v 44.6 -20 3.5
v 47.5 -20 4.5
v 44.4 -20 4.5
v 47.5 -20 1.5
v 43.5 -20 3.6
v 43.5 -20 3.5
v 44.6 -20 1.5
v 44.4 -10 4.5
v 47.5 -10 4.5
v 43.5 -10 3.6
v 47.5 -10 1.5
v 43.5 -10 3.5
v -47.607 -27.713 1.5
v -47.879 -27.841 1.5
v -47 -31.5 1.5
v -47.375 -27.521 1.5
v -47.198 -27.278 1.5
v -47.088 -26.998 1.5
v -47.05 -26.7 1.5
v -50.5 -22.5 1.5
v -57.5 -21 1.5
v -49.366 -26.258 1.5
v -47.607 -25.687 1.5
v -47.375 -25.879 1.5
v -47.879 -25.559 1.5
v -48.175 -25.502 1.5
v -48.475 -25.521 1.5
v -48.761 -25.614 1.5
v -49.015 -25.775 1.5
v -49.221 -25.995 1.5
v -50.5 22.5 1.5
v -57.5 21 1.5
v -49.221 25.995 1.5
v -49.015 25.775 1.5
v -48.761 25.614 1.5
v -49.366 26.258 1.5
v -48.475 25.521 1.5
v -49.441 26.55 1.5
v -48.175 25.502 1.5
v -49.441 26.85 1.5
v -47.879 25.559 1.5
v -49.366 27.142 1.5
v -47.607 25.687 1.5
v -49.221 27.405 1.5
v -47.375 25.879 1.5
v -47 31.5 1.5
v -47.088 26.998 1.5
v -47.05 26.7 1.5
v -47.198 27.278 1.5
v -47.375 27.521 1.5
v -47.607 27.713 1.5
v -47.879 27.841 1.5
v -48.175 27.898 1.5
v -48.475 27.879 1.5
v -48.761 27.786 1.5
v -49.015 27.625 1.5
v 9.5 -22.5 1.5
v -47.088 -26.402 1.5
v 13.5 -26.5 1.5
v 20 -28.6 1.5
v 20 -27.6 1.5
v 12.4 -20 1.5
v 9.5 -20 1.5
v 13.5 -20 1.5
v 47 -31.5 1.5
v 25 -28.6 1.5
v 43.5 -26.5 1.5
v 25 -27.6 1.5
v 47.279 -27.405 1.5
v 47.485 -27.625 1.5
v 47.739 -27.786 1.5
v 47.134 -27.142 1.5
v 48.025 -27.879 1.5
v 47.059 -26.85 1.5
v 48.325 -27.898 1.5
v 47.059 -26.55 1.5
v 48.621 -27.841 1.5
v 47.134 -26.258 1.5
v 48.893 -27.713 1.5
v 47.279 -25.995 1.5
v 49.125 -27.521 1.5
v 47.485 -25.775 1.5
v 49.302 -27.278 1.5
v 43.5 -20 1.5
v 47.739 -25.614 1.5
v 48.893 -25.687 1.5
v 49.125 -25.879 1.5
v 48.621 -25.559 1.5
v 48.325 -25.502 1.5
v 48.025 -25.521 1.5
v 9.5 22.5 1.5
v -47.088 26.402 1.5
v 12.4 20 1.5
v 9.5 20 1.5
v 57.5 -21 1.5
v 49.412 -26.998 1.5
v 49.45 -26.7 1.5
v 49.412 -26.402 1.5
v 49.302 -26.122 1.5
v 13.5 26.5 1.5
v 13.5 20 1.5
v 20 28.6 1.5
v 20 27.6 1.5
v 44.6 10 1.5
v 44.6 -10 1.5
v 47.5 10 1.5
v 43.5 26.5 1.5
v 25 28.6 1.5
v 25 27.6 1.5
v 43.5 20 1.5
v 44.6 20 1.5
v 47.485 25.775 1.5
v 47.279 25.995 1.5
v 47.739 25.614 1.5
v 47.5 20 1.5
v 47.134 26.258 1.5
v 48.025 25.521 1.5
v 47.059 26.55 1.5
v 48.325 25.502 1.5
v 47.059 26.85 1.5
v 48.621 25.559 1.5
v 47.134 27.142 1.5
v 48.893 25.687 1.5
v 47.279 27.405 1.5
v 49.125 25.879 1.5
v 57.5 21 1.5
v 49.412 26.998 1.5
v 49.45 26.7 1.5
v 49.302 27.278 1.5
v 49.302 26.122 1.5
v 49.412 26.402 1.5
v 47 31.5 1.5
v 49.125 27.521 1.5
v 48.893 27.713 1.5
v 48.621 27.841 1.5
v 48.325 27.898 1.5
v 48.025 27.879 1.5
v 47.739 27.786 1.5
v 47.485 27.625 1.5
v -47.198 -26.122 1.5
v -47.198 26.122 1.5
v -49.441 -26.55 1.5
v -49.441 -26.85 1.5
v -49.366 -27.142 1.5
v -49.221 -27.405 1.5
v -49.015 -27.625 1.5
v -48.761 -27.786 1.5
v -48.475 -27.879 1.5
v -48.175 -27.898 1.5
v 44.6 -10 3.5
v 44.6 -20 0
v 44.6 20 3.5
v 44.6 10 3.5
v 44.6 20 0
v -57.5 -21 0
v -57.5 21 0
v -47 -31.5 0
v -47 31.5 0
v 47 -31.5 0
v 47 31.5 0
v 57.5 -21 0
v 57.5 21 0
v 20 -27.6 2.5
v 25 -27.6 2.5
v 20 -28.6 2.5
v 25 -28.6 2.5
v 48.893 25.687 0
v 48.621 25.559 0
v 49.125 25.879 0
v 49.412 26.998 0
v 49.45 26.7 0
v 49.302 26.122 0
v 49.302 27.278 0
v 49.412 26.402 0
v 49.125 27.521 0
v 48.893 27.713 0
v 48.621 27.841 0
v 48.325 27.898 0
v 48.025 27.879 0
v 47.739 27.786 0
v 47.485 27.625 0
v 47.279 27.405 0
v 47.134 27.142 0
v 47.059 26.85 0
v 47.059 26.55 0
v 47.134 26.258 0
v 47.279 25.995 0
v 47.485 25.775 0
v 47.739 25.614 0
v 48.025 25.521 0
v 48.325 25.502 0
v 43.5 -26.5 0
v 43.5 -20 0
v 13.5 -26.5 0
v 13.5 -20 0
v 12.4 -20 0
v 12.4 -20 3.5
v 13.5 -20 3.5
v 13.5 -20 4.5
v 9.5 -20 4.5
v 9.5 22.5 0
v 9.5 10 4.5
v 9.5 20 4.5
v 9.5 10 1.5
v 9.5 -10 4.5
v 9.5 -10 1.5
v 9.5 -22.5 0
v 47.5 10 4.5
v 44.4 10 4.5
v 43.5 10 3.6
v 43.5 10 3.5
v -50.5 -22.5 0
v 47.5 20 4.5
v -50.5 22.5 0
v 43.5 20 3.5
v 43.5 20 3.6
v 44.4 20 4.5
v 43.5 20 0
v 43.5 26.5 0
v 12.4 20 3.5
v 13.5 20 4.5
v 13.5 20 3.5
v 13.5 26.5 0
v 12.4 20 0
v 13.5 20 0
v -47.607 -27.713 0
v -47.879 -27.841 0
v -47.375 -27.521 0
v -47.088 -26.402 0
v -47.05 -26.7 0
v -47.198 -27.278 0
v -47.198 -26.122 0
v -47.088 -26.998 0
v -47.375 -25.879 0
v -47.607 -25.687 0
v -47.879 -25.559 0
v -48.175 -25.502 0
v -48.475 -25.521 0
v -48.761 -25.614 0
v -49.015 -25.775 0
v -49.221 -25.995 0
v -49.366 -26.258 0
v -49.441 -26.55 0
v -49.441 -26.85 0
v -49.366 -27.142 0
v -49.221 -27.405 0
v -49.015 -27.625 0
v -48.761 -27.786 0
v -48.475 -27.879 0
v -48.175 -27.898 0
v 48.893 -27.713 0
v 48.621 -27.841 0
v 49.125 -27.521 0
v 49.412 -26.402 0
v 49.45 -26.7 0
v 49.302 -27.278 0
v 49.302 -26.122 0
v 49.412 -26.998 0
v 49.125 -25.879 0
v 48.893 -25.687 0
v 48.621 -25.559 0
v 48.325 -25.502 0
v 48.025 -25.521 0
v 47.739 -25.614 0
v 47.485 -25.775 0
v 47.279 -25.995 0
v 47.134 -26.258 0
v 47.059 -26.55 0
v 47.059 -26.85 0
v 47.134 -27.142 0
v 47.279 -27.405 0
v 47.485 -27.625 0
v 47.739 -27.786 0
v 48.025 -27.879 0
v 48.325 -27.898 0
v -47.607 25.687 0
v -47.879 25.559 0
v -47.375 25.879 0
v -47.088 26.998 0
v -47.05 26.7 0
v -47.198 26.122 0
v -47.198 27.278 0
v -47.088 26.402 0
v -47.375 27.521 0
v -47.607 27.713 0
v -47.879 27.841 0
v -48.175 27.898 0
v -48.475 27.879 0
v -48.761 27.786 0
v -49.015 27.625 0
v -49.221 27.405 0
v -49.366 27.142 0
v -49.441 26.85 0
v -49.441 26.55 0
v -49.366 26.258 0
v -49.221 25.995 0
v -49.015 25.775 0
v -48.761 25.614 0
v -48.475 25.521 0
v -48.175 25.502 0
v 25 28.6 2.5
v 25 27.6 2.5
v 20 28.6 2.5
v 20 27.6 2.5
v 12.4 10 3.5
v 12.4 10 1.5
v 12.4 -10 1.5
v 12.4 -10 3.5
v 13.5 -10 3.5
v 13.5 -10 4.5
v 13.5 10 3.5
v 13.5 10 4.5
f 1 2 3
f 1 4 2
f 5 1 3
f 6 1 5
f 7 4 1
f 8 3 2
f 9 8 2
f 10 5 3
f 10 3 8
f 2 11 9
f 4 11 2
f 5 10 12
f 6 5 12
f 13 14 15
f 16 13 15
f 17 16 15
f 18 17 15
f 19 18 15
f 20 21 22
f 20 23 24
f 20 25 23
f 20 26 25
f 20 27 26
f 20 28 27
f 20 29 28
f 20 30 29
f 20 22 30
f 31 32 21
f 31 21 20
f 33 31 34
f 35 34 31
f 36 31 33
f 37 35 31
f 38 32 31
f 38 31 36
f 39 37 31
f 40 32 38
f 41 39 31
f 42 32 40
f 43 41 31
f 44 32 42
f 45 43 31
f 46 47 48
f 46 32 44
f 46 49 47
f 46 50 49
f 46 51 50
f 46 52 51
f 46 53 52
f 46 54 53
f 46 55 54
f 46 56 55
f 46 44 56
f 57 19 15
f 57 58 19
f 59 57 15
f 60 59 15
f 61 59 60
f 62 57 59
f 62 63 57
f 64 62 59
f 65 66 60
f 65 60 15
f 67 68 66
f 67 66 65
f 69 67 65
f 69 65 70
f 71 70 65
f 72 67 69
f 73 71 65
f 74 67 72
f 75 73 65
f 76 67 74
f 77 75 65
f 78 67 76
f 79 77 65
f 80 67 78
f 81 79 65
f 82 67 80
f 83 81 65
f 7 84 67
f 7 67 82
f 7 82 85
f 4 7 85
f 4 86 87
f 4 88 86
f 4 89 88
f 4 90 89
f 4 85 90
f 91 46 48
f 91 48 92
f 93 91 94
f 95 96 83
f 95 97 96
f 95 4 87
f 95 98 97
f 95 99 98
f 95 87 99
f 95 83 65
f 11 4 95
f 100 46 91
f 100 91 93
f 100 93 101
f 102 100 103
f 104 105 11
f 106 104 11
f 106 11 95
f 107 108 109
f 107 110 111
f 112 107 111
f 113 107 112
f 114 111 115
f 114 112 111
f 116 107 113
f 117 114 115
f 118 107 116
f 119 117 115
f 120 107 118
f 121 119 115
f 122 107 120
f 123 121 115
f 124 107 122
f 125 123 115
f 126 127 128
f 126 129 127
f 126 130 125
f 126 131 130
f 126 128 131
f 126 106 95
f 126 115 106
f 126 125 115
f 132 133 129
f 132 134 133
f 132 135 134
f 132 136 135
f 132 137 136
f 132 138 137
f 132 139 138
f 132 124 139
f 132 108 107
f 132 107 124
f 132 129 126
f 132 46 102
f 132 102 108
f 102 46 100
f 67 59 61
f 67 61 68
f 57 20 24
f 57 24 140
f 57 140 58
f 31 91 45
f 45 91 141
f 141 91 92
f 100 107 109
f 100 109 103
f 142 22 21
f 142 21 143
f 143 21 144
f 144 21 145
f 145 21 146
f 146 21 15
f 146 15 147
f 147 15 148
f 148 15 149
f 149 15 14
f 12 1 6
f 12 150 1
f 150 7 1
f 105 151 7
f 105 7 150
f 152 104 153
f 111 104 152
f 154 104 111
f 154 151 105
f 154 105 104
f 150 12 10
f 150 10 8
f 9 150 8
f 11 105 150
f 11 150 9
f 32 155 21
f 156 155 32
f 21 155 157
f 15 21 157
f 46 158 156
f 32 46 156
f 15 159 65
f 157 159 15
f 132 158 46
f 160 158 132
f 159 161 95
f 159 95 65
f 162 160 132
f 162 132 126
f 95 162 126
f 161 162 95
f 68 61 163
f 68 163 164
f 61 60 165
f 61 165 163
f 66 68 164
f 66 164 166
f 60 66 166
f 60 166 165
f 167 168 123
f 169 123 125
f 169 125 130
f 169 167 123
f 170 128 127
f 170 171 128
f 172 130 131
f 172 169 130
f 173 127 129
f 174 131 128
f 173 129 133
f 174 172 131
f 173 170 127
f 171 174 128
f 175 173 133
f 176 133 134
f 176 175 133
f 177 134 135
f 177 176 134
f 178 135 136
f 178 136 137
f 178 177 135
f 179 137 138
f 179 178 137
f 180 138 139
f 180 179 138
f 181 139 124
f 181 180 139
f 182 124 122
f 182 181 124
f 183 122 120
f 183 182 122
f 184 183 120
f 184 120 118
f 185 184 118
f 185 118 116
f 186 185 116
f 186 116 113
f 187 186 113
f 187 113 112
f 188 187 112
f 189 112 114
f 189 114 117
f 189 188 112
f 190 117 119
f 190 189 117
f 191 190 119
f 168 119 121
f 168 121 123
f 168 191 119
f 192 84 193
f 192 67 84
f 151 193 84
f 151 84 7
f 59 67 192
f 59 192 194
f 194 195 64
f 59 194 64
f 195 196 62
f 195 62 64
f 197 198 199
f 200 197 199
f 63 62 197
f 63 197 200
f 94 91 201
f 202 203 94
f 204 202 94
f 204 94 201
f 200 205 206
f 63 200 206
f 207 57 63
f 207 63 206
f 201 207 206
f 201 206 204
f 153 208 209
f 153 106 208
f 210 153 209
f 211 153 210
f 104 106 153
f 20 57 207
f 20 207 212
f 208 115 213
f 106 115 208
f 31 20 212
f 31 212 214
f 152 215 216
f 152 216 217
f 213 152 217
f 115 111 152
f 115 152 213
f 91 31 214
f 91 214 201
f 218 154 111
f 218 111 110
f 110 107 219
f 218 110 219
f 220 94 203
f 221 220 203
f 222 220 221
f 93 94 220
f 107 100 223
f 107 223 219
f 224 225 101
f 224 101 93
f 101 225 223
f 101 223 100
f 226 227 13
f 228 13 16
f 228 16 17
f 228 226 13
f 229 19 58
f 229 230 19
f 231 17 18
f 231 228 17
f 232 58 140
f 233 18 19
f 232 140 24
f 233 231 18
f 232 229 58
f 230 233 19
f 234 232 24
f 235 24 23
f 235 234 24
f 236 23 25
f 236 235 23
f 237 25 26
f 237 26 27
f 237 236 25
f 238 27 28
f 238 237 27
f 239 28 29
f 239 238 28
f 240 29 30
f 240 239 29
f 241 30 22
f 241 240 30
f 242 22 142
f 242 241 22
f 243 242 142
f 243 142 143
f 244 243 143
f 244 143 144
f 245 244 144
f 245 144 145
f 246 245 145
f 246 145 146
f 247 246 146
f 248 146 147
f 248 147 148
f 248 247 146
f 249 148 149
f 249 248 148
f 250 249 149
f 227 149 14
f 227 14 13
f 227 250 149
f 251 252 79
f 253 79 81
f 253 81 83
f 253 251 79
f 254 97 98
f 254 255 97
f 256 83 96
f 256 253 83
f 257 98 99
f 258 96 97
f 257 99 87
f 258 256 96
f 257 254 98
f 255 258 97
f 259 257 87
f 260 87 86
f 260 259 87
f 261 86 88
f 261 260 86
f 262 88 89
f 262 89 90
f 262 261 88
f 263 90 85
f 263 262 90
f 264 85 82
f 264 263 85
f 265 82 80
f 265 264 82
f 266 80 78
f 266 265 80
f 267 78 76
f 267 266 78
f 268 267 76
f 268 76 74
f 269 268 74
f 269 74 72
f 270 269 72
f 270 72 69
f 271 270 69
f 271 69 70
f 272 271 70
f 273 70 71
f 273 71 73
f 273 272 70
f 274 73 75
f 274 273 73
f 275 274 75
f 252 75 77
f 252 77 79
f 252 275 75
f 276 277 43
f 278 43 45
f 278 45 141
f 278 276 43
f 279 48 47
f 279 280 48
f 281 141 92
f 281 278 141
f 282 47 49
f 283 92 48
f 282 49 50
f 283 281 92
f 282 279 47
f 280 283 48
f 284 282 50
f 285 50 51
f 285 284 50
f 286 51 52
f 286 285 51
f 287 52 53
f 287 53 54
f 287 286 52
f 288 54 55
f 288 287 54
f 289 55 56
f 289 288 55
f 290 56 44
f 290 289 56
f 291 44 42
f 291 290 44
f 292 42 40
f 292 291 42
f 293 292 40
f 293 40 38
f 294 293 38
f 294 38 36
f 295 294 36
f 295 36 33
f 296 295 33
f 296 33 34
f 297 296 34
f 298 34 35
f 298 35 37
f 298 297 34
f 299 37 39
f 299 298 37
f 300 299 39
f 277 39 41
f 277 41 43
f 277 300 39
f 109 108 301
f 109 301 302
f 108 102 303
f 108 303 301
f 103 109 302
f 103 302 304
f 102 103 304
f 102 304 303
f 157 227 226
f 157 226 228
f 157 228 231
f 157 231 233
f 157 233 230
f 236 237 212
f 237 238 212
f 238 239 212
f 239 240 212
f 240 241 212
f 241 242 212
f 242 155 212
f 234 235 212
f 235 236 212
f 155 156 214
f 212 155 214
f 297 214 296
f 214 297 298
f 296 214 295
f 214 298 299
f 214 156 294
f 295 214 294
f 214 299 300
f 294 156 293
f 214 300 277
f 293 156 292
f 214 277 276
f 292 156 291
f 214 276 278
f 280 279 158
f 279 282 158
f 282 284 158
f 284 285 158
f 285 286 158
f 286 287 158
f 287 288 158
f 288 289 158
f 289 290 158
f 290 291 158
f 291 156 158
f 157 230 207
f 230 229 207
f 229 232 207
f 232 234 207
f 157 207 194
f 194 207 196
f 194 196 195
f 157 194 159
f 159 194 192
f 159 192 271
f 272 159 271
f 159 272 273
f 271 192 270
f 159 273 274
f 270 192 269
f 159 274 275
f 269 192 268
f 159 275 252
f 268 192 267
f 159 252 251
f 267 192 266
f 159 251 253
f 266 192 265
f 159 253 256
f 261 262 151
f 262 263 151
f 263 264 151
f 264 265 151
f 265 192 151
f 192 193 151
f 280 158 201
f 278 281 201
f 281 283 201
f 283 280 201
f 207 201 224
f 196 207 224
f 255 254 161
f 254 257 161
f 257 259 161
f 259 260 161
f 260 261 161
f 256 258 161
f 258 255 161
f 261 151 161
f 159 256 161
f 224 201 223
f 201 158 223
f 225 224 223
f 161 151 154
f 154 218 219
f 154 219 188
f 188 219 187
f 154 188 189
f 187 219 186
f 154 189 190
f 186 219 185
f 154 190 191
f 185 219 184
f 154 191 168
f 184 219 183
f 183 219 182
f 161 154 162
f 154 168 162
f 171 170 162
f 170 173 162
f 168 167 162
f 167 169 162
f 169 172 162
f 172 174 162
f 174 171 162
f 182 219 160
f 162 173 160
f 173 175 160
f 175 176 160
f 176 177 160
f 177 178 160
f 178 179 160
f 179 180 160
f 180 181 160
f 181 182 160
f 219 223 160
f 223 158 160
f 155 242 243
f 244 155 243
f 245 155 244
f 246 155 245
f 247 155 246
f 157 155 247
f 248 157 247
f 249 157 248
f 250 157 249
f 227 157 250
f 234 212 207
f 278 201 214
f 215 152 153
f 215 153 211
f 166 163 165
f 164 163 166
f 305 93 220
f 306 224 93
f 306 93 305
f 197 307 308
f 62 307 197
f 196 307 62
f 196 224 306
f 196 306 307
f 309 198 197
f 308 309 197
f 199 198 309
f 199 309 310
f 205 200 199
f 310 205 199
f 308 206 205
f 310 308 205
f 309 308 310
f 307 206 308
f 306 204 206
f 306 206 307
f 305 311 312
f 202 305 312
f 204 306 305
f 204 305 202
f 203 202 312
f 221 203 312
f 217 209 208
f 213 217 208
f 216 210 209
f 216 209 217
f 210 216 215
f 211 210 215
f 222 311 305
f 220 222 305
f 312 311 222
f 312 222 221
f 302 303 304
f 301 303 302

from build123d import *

# Parameters (mm, degrees)
SKETCH_R        = 1.2
PAD_DEPTH       = 1.5
SKETCH001_W     = 60
SKETCH001_H     = 45
SKETCH001_W_2   = 30
SKETCH001_H_2   = 53
POCKET_DEPTH    = 5
SKETCH002_W     = 4
SKETCH002_H     = 10
PAD001_DEPTH    = 3
SKETCH003_W     = 32.2
SKETCH003_H     = 40
POCKET001_DEPTH = 3.5
SKETCH004_W     = 5
SKETCH004_H     = 1
PAD002_DEPTH    = 1
CHAMFER_SIZE    = 0.9


with BuildPart() as pad:
    # Sketch → Pad (new body)
    with BuildSketch(Plane.XY):
        Polygon((-47, 31.5), (47, 31.5), (57.5, 21), (57.5, -21), (47, -31.5), (-47, -31.5), (-57.5, -21), (-57.5, 21), align=None)
        with Locations((-48.25, 26.7)):
            Circle(SKETCH_R, mode=Mode.SUBTRACT)
        with Locations((48.25, 26.7)):
            Circle(SKETCH_R, mode=Mode.SUBTRACT)
        with Locations((-48.25, -26.7)):
            Circle(SKETCH_R, mode=Mode.SUBTRACT)
        with Locations((48.25, -26.7)):
            Circle(SKETCH_R, mode=Mode.SUBTRACT)
    extrude(amount=PAD_DEPTH)


with BuildPart() as pocket:
    # Pocket base: copy of Pad
    add(pad.part)

    # Sketch001 → Pocket (cut)
    with BuildSketch(Plane.XY.offset(1.5)):
        with Locations((-20.5, 0)):
            Rectangle(SKETCH001_W, SKETCH001_H)
        with Locations((28.5, 0)):
            Rectangle(SKETCH001_W_2, SKETCH001_H_2)
    extrude(amount=-POCKET_DEPTH, mode=Mode.SUBTRACT)


with BuildPart() as common:
    # Common base: copy of Pad
    add(pad.part)

    # Common: intersect Pocket
    add(pocket.part, mode=Mode.INTERSECT)


with BuildPart() as fusion:
    # Pad001 base: copy of Common
    add(common.part)

    # Sketch002 → Pad001 (new body)
    with BuildSketch(Plane.XY.offset(1.5)):
        with Locations((11.5, 15)):
            Rectangle(SKETCH002_W, SKETCH002_H)
        with Locations((11.5, -15)):
            Rectangle(SKETCH002_W, SKETCH002_H)
        with Locations((45.5, 15)):
            Rectangle(SKETCH002_W, SKETCH002_H)
        with Locations((45.5, -15)):
            Rectangle(SKETCH002_W, SKETCH002_H)
    extrude(amount=PAD001_DEPTH)

    # Fusion: union Common
    add(common.part)


with BuildPart() as pocket001:
    # Pocket001 base: copy of Fusion
    add(fusion.part)

    # Sketch003 → Pocket001 (cut)
    with BuildSketch(Plane(origin=(0, 0, 0), x_dir=(1, 0, 0), z_dir=(0, 0, -1))):
        with Locations((28.5, 0)):
            Rectangle(SKETCH003_W, SKETCH003_H)
    extrude(amount=-POCKET001_DEPTH, mode=Mode.SUBTRACT)


with BuildPart() as common001:
    # Common001 base: copy of Fusion
    add(fusion.part)

    # Common001: intersect Pocket001
    add(pocket001.part, mode=Mode.INTERSECT)


with BuildPart() as chamfer_body:
    # Pad002 base: copy of Common001
    add(common001.part)

    # Sketch004 → Pad002 (new body)
    with BuildSketch(Plane.XY.offset(1.5)):
        with Locations((22.5, 28.1)):
            Rectangle(SKETCH004_W, SKETCH004_H)
        with Locations((22.5, -28.1)):
            Rectangle(SKETCH004_W, SKETCH004_H)
    extrude(amount=PAD002_DEPTH)

    # Fusion001: union Common001
    add(common001.part)

    # Chamfer
    chamfer_edges = [chamfer_body.edges().sort_by_distance(p)[0] for p in [
        (43.5, -15, 4.5),
        (43.5, 15, 4.5),
    ]]
    chamfer(chamfer_edges, length=CHAMFER_SIZE)


solid = chamfer_body.part
